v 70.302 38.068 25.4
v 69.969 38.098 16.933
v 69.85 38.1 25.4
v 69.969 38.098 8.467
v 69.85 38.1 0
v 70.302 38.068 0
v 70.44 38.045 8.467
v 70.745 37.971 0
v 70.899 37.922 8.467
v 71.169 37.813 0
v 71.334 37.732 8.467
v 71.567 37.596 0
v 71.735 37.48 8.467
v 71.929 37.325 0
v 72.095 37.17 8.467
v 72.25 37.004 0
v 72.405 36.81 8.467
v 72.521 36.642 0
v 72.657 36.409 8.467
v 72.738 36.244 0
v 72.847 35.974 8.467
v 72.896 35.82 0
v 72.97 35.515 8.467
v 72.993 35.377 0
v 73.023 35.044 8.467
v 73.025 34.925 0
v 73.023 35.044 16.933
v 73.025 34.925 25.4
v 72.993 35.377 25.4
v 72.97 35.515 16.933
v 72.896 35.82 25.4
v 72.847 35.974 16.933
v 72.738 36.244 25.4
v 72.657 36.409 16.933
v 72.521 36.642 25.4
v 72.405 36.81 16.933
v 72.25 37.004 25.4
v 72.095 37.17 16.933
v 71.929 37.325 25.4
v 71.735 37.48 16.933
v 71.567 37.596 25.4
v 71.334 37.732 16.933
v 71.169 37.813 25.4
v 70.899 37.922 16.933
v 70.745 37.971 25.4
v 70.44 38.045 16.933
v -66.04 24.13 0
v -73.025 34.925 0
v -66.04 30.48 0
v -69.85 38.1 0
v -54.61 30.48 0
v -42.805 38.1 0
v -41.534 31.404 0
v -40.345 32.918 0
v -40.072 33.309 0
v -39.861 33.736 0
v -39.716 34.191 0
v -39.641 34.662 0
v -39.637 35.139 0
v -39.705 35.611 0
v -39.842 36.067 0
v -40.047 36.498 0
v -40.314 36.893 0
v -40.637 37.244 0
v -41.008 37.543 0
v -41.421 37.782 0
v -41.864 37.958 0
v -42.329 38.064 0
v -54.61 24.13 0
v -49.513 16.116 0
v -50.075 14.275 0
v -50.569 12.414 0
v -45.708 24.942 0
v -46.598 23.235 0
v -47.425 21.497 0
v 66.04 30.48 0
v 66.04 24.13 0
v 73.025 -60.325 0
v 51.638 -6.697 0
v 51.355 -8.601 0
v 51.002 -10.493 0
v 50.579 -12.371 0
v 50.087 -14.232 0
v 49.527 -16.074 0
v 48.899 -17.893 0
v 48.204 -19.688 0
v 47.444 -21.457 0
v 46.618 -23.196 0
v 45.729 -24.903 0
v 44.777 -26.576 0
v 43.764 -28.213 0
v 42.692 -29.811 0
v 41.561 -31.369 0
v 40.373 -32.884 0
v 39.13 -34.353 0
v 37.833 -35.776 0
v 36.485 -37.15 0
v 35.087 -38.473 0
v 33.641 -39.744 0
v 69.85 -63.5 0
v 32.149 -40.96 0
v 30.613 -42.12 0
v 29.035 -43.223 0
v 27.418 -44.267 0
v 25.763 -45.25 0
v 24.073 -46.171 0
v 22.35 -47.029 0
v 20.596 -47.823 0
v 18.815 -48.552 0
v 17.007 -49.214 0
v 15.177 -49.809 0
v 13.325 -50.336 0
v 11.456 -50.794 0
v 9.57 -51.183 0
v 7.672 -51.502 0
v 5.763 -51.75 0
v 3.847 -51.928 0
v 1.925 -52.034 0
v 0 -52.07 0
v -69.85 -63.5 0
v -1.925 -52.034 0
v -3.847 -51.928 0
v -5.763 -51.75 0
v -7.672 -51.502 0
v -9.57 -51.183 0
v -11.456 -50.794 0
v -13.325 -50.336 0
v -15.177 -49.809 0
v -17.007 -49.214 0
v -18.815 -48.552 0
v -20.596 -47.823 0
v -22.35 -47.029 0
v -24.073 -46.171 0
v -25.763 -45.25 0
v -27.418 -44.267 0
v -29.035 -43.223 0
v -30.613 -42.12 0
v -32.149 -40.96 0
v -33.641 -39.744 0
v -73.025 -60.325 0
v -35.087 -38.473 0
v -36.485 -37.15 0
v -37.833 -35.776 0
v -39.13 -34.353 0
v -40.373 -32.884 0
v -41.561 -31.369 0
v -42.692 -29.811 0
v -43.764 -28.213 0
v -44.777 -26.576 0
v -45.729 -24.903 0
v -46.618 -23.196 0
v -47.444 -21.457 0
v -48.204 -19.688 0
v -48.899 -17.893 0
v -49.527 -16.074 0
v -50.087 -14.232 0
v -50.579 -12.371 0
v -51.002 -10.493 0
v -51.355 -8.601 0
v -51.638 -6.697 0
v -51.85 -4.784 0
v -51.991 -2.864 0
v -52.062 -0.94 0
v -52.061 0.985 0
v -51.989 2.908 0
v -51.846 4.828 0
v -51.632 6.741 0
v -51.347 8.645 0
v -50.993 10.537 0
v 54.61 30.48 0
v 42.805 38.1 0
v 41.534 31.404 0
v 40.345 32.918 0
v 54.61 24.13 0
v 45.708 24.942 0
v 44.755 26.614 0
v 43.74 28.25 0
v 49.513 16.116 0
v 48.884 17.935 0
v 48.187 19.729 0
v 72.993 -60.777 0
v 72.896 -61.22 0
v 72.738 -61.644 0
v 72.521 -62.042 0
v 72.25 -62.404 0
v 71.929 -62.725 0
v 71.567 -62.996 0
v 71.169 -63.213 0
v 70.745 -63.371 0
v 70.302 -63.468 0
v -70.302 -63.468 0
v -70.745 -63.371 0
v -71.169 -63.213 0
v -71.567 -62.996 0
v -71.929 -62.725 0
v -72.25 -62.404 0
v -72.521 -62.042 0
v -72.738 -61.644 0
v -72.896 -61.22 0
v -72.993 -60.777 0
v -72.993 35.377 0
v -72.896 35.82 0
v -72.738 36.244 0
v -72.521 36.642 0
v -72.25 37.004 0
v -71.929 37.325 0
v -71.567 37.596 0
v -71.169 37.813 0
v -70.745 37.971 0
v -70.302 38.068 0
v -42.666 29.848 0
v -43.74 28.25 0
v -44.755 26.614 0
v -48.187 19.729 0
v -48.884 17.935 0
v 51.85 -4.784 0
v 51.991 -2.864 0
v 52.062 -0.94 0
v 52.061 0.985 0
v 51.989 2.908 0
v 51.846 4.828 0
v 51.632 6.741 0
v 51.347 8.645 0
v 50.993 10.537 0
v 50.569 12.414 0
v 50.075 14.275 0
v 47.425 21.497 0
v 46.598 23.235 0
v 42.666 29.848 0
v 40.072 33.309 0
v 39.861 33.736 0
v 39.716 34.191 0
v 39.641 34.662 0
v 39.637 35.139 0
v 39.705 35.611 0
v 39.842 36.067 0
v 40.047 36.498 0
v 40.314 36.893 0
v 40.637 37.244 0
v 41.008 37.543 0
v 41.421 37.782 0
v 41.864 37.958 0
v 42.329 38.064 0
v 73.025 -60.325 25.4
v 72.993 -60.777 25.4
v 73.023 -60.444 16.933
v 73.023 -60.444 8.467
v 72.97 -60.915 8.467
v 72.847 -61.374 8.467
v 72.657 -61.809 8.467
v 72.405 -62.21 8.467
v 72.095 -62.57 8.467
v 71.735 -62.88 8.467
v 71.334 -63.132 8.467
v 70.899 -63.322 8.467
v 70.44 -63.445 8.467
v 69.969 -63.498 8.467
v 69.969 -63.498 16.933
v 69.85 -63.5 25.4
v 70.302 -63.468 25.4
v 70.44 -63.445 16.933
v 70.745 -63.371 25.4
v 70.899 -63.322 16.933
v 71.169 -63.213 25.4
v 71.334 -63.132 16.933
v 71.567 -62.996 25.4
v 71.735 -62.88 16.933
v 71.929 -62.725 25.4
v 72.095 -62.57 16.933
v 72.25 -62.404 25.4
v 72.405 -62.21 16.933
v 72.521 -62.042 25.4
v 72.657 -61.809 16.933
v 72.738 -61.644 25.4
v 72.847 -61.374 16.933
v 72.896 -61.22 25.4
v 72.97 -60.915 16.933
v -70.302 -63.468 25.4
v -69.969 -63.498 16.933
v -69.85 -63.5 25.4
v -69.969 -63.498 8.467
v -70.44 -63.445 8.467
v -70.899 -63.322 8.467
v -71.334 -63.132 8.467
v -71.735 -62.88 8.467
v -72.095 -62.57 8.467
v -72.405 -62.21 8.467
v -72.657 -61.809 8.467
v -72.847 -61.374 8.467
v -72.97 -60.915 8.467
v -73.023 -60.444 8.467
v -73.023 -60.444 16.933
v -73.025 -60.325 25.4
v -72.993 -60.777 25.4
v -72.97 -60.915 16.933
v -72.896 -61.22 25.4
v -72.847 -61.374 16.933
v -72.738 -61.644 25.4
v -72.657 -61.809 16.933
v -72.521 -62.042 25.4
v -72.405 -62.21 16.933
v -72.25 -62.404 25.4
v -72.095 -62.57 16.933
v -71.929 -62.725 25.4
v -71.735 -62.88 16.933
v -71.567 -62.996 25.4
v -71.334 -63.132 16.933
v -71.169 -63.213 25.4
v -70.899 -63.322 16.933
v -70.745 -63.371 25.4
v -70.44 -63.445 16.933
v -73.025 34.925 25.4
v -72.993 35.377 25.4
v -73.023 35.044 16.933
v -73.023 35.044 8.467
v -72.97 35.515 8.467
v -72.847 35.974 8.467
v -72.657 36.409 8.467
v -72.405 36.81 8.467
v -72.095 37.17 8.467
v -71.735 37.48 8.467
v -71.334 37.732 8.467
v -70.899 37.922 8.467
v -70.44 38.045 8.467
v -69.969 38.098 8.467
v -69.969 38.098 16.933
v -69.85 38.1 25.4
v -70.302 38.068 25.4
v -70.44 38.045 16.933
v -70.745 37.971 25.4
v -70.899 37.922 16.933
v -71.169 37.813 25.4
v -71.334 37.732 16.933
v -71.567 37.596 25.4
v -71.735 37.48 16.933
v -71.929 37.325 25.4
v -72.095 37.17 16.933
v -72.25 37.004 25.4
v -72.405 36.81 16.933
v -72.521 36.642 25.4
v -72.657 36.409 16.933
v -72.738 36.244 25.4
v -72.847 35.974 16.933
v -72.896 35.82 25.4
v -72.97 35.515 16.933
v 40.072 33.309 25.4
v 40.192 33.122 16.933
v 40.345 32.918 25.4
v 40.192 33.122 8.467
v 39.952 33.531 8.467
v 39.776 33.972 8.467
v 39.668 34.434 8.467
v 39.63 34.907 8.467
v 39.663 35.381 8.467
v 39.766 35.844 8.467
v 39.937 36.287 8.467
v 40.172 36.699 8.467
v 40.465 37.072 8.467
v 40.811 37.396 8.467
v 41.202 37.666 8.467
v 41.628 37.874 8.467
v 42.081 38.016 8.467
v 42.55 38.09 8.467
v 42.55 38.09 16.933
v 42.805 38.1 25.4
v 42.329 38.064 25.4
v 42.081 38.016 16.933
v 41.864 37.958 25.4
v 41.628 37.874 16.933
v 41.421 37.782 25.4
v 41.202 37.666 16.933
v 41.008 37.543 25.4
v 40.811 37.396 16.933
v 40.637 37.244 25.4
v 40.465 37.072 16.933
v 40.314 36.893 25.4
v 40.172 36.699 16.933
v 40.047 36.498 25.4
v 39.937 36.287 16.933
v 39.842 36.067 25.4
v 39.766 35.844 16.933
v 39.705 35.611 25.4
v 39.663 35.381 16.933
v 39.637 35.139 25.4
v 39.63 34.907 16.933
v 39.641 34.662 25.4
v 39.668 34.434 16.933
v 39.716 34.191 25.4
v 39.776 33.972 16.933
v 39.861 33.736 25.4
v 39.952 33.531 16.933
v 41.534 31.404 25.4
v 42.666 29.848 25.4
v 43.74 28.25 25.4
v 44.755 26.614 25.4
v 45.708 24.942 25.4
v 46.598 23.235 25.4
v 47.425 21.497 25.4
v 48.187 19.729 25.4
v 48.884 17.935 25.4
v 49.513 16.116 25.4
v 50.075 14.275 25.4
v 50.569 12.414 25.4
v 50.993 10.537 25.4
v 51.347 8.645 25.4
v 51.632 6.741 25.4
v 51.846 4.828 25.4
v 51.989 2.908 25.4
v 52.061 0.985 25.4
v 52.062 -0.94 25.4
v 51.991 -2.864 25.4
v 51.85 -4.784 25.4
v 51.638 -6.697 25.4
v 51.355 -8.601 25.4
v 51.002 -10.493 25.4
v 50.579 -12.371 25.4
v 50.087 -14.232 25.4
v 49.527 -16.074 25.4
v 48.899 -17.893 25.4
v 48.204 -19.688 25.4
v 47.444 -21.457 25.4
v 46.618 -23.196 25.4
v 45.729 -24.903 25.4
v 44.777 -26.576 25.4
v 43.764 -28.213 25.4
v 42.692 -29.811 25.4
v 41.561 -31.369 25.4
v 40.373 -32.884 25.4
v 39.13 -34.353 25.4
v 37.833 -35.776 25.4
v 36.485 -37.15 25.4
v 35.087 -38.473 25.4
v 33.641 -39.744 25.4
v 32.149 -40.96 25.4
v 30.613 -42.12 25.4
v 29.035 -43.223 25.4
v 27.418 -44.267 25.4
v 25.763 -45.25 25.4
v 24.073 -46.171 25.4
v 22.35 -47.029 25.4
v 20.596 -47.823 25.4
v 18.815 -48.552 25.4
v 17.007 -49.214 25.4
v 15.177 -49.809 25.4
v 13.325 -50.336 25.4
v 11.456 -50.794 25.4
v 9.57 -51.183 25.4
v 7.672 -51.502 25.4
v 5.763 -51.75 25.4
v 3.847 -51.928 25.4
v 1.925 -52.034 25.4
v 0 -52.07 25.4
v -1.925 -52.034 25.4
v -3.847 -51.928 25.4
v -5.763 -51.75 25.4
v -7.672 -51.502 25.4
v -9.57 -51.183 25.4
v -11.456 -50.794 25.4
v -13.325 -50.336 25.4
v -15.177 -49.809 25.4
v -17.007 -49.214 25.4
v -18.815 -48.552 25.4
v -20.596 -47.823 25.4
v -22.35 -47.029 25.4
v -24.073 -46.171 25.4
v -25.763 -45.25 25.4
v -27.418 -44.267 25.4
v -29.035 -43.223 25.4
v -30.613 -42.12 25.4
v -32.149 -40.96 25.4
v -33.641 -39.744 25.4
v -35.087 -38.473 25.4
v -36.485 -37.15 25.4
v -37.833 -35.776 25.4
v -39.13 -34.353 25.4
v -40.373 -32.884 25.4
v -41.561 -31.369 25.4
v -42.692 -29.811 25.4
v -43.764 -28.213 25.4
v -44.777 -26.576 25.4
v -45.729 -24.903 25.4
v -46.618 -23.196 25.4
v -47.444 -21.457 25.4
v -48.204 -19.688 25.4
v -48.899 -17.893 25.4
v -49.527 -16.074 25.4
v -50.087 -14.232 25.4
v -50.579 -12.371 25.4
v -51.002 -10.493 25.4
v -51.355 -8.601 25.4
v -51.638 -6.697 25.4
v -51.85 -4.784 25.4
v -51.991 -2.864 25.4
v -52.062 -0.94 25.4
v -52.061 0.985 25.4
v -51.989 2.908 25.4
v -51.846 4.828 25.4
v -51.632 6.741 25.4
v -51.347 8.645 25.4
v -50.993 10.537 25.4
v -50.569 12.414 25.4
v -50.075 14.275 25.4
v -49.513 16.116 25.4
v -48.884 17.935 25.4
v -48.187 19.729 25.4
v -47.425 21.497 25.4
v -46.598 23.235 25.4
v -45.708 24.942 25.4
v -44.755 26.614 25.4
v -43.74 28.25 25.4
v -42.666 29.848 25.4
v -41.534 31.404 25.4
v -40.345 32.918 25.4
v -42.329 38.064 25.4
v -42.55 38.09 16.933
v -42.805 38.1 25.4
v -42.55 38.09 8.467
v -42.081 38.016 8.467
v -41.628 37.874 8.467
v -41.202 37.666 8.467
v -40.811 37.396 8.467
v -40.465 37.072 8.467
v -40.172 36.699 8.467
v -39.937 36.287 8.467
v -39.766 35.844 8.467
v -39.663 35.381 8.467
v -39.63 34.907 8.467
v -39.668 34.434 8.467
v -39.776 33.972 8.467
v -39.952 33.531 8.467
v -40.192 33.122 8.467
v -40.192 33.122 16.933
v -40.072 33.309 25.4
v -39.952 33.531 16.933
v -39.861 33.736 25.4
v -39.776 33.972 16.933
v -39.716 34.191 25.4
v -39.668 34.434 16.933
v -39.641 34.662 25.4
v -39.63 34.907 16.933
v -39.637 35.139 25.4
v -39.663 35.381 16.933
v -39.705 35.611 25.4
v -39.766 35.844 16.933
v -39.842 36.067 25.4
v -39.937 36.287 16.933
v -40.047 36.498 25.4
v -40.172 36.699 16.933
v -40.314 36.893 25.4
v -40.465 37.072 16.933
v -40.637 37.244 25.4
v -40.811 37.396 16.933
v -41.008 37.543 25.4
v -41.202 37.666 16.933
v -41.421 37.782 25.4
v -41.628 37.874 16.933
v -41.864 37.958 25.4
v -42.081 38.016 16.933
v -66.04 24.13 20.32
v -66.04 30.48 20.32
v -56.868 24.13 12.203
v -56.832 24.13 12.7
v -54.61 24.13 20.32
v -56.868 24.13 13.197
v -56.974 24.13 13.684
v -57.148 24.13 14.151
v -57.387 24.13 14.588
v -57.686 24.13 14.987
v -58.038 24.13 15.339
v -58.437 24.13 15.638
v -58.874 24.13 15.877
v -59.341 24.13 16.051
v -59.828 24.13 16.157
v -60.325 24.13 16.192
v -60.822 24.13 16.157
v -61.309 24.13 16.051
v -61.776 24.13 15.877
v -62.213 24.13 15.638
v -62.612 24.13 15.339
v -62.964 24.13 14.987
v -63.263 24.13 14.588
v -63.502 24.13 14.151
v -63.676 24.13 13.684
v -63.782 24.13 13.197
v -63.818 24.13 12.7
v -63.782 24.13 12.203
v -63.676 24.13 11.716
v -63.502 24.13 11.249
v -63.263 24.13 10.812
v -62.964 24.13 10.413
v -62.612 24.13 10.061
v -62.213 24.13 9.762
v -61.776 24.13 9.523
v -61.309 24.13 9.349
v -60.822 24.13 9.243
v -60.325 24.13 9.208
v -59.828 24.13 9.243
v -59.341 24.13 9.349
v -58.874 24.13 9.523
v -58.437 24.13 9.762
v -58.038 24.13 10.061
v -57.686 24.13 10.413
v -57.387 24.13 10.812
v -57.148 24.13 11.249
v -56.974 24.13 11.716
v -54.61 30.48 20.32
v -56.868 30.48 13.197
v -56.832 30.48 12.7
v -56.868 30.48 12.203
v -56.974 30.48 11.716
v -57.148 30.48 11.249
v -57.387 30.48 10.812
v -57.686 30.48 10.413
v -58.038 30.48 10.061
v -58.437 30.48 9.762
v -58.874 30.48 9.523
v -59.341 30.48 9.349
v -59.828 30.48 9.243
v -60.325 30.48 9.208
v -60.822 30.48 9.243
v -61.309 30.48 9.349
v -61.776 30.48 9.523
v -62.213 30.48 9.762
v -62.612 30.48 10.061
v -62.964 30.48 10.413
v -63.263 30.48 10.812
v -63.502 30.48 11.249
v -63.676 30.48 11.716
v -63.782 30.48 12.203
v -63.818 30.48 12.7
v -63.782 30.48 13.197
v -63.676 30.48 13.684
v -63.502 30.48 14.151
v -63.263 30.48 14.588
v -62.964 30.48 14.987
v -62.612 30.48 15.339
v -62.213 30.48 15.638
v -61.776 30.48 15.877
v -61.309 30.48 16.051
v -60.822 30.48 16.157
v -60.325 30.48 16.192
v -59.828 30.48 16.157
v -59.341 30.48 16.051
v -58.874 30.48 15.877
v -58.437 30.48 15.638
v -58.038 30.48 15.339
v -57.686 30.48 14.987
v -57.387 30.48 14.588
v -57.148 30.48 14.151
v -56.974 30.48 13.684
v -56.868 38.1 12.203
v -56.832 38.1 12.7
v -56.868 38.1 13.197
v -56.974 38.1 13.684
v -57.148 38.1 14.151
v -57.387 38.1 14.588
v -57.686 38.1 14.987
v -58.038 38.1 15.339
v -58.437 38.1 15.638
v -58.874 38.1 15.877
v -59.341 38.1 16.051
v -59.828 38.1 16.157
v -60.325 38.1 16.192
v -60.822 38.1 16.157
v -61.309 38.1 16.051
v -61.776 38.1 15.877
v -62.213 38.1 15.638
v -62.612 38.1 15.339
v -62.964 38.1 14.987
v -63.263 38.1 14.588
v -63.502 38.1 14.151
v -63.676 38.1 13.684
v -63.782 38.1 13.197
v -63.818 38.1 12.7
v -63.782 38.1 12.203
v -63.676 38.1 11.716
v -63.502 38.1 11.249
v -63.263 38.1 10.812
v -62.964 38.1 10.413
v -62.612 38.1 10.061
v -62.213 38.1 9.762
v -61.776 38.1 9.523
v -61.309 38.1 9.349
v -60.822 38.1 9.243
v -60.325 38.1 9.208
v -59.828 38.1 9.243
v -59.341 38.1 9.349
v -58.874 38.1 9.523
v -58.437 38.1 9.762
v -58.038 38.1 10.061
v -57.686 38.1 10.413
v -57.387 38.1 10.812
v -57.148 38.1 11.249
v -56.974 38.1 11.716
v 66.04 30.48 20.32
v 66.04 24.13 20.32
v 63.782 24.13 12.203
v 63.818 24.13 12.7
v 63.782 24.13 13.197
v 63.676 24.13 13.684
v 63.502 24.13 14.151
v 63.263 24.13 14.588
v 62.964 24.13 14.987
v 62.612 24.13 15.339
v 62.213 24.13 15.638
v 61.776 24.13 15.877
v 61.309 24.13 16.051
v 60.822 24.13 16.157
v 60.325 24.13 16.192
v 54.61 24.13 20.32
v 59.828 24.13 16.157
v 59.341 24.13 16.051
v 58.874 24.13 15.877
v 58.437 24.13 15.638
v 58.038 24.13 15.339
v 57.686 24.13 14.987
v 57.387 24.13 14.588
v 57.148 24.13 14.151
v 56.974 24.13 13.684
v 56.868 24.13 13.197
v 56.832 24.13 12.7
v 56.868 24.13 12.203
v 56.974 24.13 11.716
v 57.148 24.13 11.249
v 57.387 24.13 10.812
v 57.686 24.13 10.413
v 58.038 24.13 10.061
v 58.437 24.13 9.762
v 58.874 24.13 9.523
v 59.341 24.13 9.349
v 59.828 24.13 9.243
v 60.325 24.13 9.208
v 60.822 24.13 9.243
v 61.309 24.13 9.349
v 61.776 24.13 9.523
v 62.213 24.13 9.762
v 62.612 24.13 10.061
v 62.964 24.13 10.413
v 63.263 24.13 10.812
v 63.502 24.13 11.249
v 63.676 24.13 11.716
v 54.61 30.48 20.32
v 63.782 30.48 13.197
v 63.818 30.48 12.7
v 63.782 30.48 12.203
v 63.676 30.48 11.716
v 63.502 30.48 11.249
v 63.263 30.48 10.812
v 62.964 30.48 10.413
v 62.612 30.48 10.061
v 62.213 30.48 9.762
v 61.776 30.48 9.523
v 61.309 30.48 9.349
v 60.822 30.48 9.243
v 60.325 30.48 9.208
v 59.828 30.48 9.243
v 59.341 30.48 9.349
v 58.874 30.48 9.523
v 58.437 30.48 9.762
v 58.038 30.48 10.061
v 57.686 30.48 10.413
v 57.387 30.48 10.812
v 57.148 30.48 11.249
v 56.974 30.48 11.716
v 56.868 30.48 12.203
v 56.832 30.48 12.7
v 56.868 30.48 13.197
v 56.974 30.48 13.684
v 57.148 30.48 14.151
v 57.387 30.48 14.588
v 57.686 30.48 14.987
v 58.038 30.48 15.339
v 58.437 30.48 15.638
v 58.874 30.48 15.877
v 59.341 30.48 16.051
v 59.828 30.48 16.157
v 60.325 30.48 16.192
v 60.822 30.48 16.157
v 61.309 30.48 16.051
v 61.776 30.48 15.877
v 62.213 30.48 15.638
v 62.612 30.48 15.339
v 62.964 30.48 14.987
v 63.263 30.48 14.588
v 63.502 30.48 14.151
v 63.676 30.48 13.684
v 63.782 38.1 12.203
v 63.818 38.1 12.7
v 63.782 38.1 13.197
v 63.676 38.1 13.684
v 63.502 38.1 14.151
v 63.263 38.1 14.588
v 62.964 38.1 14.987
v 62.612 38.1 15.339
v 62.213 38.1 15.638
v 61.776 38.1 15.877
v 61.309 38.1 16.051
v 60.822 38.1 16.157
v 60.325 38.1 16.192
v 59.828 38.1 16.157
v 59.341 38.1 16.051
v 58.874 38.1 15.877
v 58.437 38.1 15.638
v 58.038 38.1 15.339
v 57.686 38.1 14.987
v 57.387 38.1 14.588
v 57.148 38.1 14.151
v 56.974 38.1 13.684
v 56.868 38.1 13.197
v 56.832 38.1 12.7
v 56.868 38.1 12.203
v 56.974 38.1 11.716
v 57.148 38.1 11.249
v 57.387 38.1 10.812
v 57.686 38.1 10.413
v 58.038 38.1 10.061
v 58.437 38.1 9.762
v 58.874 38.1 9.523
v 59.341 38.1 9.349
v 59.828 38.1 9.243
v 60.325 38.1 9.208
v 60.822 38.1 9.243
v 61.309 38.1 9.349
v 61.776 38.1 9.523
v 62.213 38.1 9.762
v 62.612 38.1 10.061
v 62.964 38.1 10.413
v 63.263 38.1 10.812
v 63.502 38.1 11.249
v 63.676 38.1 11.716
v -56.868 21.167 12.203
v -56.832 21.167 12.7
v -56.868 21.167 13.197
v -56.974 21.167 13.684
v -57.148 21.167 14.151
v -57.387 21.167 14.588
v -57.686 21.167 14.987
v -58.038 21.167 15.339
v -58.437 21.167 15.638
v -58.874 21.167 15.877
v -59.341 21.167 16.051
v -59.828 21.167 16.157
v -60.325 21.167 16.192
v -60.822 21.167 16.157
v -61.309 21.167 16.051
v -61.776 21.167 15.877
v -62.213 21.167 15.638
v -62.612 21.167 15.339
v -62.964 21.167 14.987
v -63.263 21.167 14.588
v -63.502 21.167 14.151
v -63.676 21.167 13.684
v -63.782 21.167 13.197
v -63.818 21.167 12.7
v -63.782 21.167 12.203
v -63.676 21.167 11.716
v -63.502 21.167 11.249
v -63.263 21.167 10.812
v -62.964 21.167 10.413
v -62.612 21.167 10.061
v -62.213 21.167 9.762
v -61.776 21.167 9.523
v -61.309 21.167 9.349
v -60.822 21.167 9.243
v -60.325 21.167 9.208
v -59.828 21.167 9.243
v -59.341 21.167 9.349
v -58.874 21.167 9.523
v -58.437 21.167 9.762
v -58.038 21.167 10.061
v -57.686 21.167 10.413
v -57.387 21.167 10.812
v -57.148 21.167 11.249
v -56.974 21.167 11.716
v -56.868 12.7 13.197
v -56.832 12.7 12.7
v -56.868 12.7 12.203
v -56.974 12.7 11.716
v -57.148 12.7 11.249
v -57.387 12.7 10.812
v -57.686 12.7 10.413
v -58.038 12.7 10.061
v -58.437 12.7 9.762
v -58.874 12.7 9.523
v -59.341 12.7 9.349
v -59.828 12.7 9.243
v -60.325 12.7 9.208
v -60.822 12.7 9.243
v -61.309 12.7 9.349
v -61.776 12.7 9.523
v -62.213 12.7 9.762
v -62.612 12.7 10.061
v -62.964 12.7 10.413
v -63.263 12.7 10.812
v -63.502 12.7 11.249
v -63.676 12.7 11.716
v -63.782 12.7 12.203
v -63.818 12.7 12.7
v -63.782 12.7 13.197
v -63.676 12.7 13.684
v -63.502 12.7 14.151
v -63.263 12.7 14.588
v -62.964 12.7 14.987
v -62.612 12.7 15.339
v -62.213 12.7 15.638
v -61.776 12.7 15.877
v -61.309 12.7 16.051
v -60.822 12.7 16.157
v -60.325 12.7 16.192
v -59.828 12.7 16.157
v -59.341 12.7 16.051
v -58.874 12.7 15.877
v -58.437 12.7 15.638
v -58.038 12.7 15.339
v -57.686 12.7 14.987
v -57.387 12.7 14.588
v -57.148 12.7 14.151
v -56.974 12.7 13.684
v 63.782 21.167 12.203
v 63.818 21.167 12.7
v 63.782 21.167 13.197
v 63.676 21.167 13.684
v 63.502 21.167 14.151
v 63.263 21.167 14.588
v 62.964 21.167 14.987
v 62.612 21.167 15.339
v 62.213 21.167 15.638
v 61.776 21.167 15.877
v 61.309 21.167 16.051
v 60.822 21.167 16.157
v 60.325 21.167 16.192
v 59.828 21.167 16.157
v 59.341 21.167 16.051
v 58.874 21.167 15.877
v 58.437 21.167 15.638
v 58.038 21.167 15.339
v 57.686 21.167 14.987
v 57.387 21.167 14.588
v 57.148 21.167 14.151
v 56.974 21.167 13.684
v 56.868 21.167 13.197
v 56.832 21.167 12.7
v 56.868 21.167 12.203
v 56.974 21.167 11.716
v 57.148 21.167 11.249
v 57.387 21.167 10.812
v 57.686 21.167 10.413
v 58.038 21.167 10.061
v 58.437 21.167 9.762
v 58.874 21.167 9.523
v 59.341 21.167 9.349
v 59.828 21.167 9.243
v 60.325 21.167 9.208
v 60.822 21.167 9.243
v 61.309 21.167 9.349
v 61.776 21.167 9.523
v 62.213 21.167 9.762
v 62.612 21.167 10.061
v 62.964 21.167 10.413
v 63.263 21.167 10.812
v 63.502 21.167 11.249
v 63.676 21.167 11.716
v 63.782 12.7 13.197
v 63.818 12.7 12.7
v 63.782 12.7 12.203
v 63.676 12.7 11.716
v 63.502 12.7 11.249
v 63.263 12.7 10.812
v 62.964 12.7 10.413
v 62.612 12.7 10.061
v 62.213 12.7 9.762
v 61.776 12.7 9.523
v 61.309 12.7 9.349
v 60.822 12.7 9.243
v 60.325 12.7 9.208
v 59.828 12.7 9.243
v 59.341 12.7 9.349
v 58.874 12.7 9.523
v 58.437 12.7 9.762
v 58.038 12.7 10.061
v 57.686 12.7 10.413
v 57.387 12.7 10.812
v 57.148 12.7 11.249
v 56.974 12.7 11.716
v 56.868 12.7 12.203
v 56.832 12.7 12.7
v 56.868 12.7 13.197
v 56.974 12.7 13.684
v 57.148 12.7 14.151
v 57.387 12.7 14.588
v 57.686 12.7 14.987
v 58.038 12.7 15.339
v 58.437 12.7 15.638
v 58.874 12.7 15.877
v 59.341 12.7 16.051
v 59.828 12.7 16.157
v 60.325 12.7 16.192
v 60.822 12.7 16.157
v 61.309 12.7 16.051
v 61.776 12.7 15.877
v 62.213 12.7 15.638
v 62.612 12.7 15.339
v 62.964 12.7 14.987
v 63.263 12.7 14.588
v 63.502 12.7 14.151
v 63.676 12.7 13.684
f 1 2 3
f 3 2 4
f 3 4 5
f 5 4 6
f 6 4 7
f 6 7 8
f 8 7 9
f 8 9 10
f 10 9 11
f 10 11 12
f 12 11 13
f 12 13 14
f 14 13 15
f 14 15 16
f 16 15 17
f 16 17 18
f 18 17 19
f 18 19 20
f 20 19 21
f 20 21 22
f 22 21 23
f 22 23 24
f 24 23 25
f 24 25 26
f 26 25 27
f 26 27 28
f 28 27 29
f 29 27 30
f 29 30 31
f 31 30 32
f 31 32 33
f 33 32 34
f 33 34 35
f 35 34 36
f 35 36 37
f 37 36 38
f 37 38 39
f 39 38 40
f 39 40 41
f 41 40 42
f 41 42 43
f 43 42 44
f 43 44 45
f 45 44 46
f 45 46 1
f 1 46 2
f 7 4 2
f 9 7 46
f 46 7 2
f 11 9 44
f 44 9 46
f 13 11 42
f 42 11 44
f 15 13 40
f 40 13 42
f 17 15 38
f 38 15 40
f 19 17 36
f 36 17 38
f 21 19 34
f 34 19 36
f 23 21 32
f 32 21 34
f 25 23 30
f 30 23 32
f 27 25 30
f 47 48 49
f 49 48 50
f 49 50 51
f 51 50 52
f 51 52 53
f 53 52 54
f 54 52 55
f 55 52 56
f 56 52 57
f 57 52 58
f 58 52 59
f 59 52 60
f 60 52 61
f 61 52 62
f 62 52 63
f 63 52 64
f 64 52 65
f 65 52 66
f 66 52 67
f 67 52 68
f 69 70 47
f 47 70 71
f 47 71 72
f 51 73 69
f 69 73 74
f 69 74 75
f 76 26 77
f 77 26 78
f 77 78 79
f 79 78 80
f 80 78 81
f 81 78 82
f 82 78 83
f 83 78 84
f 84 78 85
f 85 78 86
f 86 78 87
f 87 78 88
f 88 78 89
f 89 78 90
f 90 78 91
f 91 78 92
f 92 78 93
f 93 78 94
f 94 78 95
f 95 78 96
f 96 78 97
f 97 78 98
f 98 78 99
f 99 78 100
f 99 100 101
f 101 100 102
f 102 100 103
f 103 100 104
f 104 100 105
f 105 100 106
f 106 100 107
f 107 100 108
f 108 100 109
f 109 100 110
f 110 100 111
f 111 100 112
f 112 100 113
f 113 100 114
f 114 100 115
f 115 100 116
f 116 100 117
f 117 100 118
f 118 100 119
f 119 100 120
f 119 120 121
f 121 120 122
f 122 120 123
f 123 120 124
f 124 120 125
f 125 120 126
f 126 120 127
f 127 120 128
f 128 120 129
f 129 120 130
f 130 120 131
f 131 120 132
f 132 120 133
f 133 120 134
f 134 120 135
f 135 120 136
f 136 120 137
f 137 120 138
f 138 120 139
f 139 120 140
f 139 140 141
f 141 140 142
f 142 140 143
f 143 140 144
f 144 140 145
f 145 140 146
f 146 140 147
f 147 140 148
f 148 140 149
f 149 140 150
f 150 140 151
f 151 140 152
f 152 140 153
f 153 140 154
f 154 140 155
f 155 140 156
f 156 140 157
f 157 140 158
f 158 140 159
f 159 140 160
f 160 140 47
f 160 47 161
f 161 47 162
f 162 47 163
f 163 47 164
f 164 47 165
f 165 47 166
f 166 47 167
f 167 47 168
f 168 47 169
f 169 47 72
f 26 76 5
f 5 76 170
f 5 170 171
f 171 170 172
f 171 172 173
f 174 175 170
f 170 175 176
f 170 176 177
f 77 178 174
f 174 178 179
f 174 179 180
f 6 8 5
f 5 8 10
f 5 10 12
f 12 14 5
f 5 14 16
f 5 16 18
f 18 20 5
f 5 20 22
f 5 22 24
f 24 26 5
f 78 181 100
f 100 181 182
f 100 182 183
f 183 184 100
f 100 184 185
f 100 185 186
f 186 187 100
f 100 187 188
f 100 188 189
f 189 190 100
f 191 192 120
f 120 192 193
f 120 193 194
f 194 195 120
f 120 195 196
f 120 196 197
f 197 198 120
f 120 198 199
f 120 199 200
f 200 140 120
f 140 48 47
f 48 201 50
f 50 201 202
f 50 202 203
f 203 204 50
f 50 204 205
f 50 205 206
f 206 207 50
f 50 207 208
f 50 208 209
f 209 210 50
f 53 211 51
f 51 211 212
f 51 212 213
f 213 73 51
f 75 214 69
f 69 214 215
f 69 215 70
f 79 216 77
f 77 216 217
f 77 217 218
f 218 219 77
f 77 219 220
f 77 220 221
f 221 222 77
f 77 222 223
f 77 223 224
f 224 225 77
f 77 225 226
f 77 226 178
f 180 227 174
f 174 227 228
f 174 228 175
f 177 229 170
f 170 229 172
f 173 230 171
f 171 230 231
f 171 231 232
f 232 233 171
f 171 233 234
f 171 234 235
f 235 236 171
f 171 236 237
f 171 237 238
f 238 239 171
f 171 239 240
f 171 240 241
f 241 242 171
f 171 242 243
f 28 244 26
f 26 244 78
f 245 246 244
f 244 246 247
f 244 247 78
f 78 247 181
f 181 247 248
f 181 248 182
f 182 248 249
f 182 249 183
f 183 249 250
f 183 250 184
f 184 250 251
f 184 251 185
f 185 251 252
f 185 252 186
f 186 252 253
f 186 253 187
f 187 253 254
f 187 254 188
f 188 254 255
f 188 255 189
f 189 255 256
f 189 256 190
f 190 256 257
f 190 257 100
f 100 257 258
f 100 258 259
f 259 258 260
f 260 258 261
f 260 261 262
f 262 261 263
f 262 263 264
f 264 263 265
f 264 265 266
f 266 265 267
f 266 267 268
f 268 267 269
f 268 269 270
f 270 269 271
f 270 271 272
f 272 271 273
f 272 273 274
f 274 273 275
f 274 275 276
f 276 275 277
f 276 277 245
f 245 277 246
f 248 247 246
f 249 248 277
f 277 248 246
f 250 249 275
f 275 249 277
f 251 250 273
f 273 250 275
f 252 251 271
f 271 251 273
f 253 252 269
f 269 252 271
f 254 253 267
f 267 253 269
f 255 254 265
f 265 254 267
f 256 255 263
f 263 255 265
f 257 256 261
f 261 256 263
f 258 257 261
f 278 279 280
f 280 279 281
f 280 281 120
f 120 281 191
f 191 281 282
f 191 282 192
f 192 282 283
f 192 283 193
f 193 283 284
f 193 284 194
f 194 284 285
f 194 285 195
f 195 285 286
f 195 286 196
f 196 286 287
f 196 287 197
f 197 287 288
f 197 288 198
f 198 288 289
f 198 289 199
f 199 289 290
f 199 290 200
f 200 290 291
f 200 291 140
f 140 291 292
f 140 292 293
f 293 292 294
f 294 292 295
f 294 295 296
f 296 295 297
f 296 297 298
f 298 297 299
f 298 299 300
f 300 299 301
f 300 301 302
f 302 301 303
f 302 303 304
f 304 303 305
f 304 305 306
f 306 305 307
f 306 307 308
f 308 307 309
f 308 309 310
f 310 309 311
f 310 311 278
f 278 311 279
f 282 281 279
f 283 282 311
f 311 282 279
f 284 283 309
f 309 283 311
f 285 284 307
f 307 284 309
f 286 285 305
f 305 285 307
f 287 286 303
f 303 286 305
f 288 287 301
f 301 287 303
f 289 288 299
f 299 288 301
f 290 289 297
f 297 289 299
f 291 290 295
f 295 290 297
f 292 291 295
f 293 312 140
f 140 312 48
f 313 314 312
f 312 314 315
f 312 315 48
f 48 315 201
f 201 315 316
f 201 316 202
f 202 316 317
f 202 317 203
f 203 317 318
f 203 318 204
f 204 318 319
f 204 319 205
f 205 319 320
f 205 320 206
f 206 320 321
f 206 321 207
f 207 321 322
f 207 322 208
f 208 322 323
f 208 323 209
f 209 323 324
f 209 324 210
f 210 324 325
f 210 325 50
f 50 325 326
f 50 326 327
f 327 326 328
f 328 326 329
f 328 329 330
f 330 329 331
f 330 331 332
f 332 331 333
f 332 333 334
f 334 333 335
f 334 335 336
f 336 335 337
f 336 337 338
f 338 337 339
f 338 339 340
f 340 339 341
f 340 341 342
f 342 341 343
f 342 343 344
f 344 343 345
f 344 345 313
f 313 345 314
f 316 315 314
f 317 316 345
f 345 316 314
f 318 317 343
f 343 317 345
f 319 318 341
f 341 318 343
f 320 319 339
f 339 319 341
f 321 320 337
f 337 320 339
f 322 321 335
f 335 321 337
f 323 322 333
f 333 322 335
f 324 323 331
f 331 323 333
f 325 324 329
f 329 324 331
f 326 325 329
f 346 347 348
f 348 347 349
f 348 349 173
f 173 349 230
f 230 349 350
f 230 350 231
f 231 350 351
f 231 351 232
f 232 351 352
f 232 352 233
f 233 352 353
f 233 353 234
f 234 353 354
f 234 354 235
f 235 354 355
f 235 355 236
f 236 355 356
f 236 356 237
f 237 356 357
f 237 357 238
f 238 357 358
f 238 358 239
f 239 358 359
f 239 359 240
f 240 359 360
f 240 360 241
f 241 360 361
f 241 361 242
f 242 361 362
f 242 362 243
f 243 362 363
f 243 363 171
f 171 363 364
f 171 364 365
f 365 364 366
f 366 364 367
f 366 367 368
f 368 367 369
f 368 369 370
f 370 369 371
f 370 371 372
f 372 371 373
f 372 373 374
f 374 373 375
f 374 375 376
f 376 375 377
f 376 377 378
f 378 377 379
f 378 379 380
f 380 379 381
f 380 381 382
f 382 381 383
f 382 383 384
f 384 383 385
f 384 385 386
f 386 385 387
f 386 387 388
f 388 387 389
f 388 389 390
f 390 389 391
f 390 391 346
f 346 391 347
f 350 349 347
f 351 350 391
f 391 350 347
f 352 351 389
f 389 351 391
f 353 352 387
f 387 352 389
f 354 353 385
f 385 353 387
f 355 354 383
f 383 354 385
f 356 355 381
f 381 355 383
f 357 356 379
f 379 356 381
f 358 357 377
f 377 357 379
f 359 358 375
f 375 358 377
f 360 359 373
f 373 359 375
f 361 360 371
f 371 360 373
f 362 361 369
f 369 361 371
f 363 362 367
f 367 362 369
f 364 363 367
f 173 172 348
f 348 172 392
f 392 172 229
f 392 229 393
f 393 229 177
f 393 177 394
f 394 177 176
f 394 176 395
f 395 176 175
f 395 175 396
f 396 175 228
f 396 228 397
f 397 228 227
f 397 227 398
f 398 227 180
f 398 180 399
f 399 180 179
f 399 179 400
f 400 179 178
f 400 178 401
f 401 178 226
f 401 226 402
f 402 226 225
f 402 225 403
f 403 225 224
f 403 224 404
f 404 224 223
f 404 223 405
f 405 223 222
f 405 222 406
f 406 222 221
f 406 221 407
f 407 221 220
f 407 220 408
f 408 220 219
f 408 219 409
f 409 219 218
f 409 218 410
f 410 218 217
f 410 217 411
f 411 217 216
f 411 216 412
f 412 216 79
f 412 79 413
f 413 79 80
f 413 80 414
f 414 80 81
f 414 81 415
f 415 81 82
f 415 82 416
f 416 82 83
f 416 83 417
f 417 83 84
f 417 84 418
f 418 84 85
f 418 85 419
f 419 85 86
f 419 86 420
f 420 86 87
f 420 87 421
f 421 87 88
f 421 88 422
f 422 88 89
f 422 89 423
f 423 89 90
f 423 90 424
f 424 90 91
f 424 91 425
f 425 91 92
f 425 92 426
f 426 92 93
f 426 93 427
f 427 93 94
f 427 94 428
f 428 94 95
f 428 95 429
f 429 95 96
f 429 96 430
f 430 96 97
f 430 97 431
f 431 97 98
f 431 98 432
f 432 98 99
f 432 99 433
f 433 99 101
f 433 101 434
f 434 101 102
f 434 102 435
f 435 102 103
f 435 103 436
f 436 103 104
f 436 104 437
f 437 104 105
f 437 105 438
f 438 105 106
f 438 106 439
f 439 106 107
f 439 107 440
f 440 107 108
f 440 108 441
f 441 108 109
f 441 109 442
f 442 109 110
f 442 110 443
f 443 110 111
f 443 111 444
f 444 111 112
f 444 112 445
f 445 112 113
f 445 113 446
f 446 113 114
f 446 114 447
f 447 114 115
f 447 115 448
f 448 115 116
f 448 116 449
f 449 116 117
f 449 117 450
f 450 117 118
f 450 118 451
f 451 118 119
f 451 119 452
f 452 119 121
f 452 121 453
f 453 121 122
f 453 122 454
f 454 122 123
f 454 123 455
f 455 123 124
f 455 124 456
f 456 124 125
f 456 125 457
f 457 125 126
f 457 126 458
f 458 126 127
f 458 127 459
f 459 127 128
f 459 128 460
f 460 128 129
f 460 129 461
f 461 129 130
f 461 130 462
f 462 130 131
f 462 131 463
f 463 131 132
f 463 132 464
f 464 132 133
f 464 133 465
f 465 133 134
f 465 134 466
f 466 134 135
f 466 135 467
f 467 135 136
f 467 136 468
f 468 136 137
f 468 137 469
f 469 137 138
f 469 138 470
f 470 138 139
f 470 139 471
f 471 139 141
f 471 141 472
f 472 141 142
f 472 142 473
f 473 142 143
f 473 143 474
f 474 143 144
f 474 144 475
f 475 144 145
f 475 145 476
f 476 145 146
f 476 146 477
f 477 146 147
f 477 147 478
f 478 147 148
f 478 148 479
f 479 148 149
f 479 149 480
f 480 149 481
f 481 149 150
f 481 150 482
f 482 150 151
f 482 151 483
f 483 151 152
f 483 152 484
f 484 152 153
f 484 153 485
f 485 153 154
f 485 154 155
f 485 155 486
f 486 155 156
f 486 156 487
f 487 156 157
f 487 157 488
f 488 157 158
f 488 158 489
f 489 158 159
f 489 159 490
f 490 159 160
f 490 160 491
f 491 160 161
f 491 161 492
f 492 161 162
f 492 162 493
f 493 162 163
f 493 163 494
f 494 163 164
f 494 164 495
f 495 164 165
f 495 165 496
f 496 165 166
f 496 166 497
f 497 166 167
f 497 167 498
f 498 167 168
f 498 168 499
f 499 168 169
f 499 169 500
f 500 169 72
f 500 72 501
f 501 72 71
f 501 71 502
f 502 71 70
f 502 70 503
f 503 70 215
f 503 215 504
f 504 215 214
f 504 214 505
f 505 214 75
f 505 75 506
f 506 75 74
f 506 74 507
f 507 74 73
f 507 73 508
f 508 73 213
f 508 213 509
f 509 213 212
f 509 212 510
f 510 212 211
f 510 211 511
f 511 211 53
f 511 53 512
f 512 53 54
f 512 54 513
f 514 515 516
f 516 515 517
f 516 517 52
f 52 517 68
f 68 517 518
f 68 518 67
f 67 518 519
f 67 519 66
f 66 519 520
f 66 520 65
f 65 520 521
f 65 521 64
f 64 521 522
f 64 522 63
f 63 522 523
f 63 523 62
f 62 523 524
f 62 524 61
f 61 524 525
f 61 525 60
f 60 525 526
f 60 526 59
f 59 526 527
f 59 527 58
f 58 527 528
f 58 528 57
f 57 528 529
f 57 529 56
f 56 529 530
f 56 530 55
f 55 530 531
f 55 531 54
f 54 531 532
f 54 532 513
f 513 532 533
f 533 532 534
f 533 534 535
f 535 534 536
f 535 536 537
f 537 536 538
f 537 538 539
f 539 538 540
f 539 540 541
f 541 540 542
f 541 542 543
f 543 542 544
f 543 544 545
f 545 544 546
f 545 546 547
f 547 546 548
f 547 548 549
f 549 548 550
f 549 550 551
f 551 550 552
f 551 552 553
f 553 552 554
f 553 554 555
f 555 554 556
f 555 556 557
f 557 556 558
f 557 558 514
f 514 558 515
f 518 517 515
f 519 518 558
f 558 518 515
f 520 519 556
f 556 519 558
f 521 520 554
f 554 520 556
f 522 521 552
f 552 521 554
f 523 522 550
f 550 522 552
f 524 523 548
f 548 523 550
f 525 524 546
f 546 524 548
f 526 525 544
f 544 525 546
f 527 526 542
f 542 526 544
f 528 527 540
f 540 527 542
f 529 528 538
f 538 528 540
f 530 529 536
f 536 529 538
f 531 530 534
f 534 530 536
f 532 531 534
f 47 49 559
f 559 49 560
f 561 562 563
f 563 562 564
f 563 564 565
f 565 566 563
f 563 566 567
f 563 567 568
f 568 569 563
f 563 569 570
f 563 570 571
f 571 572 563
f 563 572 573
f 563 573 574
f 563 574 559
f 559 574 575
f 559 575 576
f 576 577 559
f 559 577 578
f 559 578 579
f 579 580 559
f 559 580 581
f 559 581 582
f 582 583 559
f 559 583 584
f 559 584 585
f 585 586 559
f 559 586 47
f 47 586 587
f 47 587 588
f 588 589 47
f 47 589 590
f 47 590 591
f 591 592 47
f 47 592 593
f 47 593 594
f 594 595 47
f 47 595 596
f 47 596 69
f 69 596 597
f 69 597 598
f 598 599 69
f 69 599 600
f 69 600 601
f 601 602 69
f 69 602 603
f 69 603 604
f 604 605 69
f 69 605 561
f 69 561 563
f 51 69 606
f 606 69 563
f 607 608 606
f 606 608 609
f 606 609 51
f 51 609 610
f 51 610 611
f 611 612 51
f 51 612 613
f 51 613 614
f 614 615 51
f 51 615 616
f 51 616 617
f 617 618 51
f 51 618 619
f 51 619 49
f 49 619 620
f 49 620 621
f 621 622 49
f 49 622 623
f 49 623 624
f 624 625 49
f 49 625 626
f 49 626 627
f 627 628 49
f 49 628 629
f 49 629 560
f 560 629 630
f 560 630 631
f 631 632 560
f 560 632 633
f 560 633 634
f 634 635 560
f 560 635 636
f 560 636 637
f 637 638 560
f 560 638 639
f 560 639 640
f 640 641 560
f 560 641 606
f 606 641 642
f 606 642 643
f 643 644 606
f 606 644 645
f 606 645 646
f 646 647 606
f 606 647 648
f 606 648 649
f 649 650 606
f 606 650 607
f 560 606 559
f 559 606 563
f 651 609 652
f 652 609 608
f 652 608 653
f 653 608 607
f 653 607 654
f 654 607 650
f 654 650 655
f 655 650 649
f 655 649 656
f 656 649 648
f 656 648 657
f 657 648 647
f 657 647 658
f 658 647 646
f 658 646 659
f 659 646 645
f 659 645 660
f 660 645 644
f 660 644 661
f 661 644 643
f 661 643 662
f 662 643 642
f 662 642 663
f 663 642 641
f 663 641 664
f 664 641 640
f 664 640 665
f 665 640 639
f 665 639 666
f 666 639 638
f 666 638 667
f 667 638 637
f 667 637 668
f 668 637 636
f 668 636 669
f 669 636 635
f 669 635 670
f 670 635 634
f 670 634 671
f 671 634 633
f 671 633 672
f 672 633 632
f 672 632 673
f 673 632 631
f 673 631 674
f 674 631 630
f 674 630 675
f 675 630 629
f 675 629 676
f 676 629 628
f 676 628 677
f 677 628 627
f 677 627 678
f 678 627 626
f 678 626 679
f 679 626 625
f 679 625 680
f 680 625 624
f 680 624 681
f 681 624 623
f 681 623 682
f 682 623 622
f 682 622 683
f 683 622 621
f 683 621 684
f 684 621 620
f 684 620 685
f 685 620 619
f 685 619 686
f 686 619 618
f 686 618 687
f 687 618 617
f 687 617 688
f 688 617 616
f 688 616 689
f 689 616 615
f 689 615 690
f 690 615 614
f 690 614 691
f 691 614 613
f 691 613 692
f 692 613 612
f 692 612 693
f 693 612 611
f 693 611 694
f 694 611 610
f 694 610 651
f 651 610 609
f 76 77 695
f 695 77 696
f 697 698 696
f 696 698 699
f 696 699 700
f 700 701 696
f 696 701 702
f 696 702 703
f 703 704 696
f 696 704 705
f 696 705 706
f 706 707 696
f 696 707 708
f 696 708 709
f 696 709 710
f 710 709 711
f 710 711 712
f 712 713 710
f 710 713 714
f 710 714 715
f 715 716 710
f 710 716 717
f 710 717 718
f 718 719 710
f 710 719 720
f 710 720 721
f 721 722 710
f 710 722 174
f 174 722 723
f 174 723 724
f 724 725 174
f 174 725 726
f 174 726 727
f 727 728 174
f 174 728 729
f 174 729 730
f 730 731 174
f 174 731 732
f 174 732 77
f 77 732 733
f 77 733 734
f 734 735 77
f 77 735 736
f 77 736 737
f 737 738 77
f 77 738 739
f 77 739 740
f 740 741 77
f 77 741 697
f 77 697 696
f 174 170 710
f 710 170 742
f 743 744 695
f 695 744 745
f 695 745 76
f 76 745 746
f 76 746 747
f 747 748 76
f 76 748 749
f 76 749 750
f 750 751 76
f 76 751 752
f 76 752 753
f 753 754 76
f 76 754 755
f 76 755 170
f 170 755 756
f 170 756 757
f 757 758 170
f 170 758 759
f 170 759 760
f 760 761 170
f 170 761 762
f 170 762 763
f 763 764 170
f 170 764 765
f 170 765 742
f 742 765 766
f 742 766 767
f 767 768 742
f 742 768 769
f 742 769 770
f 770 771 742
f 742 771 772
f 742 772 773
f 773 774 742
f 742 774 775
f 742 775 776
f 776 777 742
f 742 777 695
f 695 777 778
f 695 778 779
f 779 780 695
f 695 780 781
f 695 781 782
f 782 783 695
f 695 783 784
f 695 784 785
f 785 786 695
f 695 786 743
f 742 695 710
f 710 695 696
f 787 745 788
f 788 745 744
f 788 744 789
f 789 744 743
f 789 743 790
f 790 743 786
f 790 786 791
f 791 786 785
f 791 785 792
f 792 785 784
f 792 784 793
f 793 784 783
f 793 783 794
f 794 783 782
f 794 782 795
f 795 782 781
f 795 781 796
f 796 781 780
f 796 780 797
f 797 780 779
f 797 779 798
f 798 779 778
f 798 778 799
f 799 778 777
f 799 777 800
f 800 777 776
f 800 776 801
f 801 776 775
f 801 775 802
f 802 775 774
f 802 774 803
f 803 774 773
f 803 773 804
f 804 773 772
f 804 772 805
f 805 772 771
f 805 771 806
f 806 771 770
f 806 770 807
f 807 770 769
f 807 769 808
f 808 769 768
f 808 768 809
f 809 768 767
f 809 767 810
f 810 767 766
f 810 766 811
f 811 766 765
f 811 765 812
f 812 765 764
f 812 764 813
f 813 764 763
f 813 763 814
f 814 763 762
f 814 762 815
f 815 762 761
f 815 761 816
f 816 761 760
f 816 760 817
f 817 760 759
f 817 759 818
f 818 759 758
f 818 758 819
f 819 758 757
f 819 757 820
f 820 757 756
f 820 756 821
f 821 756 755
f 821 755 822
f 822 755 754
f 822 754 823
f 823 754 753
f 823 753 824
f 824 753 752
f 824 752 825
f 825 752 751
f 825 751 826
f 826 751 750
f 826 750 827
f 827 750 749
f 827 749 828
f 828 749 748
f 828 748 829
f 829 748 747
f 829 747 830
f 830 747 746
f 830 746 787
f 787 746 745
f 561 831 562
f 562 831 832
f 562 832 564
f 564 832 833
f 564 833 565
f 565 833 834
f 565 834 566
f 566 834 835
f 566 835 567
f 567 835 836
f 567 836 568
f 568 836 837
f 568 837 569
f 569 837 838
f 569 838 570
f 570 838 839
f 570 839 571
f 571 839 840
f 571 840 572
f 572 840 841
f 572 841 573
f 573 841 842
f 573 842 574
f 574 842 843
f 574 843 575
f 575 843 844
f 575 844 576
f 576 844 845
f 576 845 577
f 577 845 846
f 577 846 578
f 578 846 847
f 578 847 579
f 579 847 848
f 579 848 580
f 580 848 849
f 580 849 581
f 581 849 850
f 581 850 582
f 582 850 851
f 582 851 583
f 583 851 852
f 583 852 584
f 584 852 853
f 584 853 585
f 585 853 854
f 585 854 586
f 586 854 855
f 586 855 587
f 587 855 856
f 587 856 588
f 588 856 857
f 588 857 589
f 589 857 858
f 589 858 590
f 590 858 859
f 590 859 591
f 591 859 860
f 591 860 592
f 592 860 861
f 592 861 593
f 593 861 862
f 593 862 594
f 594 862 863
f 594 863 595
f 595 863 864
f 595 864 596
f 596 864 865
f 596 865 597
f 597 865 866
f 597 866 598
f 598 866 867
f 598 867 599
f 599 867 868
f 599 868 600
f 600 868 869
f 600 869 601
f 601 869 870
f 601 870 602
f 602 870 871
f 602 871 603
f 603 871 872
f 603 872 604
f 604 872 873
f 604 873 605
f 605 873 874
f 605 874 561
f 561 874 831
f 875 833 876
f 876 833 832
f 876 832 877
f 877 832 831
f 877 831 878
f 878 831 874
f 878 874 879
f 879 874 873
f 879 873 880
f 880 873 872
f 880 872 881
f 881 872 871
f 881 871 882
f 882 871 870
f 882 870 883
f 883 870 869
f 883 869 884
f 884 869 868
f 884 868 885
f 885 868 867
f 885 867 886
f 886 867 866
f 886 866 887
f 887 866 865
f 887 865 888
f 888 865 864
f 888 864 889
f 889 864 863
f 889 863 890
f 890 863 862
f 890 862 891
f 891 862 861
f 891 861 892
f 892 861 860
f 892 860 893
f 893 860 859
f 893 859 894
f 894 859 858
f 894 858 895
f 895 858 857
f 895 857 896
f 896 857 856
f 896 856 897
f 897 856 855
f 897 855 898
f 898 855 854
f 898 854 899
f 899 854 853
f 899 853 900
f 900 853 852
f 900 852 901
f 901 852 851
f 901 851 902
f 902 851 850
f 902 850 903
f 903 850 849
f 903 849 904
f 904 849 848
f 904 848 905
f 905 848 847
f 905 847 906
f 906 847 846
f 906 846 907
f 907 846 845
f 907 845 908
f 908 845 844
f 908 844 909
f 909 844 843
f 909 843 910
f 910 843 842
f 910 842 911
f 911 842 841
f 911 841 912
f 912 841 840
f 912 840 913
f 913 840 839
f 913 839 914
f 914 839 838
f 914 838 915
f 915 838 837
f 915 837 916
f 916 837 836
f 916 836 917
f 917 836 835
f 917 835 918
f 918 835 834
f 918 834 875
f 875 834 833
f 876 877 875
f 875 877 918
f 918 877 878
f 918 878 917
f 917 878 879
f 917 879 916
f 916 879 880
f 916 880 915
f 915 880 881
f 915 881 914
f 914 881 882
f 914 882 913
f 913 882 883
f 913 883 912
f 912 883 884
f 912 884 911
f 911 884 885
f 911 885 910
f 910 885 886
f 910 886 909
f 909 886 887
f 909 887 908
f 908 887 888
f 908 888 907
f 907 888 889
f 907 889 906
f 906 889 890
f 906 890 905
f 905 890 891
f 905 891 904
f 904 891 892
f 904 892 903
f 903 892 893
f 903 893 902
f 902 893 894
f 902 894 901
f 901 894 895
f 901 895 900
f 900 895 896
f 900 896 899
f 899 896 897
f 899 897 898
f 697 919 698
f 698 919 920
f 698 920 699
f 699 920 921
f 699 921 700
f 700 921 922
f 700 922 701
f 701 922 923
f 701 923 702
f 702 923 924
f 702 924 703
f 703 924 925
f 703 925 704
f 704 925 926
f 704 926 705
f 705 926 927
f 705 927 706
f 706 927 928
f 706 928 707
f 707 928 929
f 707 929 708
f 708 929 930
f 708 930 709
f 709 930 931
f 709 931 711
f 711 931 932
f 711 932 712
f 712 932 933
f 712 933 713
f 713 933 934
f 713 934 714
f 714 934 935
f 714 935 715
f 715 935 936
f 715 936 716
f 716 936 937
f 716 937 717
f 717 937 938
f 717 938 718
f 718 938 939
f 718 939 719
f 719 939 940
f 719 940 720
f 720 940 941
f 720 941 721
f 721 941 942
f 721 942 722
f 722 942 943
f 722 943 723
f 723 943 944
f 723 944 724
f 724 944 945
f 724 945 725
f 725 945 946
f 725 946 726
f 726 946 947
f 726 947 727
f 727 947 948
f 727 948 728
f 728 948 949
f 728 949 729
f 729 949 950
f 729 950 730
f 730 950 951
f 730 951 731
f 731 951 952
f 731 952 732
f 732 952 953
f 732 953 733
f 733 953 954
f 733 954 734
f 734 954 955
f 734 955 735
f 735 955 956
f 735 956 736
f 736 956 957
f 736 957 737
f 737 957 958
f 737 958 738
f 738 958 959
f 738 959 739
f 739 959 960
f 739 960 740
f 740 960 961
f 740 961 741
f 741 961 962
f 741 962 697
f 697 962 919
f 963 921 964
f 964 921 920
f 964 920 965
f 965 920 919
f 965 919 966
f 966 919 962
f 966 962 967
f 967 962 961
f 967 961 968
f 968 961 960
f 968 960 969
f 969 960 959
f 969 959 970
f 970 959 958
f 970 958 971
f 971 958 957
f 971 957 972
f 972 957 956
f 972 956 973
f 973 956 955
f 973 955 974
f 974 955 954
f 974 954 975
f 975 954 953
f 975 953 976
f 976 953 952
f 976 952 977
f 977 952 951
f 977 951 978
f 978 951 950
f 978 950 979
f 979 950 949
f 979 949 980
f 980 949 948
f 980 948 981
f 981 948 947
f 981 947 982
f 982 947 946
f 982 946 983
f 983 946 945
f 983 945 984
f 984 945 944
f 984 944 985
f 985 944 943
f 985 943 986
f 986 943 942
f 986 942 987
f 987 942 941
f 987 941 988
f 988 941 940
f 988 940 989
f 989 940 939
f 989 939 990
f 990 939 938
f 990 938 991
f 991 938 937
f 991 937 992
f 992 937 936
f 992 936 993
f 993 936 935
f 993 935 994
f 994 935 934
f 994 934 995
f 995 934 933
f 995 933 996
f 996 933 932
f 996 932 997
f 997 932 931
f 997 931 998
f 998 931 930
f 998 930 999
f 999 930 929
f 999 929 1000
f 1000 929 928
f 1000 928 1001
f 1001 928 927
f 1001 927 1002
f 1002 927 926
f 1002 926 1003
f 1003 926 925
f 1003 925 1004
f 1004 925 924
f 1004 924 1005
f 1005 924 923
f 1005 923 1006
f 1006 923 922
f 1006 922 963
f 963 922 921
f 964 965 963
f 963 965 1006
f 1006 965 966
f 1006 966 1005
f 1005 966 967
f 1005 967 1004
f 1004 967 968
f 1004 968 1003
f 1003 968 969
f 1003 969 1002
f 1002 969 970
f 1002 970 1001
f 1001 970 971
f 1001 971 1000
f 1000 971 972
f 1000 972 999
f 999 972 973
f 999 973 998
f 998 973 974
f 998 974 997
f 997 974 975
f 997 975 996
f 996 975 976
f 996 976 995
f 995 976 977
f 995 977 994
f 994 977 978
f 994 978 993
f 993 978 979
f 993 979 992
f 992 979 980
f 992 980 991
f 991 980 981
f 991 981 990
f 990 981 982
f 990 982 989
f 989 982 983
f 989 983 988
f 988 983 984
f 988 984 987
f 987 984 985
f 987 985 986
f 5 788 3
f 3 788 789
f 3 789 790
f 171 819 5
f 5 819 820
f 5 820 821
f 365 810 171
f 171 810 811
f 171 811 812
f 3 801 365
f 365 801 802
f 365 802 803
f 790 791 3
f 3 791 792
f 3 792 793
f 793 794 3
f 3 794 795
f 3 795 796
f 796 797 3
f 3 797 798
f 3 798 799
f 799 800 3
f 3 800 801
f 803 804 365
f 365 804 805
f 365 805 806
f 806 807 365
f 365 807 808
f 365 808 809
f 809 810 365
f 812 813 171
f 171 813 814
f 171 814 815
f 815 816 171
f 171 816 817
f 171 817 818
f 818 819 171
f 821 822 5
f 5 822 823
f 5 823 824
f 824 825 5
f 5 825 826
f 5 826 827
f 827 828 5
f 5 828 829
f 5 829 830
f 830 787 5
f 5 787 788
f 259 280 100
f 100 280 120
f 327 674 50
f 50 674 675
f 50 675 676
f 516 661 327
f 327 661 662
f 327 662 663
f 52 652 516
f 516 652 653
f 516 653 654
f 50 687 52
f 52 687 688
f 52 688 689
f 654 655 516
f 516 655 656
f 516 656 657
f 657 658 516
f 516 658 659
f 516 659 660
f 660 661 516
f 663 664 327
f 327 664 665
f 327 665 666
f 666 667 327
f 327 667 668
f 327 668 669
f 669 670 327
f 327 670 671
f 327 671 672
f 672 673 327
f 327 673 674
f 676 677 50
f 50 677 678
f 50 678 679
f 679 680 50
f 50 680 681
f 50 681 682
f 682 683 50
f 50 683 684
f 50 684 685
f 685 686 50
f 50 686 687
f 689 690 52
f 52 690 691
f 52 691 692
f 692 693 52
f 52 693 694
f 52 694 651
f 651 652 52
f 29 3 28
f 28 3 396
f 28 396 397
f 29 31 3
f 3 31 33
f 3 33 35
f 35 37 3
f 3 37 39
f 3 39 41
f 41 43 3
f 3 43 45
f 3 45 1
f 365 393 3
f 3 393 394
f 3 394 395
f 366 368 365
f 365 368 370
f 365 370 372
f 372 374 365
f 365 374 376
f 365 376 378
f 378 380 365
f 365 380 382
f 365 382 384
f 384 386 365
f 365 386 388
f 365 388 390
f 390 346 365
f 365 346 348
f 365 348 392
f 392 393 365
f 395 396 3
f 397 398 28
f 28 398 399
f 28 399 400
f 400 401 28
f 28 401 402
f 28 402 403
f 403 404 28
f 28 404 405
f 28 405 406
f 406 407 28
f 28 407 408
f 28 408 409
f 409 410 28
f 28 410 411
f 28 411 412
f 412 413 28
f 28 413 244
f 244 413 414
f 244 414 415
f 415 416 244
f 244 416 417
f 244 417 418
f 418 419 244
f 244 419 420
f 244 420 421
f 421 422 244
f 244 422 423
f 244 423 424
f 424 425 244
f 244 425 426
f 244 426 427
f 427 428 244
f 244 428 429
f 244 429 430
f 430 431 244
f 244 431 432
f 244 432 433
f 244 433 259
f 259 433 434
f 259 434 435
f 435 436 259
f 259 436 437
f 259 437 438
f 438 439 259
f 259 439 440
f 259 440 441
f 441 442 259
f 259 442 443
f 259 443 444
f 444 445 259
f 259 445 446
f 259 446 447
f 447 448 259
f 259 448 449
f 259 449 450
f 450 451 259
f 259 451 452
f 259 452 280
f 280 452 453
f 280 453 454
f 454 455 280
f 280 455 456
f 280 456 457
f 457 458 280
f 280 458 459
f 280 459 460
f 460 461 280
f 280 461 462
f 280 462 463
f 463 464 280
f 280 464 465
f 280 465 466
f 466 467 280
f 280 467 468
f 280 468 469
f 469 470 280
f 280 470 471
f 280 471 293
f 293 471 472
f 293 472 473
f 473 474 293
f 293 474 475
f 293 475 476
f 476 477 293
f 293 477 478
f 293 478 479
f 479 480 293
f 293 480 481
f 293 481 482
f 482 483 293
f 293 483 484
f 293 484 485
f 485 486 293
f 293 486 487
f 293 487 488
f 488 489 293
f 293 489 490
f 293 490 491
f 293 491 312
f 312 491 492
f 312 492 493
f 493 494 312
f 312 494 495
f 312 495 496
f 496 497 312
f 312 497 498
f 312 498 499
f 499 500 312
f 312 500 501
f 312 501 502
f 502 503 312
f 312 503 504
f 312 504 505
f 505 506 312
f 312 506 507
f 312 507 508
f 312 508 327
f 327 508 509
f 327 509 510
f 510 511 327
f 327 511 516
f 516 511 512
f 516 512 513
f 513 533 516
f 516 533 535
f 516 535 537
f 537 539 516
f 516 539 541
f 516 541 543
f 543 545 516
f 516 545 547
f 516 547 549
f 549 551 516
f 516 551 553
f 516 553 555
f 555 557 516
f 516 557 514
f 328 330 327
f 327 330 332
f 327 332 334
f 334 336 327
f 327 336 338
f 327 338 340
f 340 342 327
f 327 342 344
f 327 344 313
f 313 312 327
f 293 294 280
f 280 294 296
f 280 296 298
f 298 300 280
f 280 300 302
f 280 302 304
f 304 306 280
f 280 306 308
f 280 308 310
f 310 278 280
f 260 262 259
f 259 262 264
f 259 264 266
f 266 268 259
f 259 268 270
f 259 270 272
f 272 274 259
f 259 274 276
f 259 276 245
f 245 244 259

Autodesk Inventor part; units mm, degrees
ref_plane "YZ Plane" through (0, 0, 0) normal (1, 0, 0) x (0, 1, 0)
ref_plane "XZ Plane" through (0, 0, 0) normal (0, 1, 0) x (-1, 0, 0)
ref_plane "XY Plane" through (0, 0, 0) normal (0, 0, 1) x (1, 0, 0)
sketch "Sketch1" plane through (0, 0, 0) normal (0, 0, 1) x (1, 0, 0)
  arc A0 (-35.4919, 38.1) -> (35.4919, 38.1) centre (0, 0) ccw
  line L0 (-35.4919, 38.1) -> (-73.025, 38.1)
  line L1 (-73.025, 38.1) -> (-73.025, -63.5)
  line L2 (-73.025, -63.5) -> (73.025, -63.5)
  line L3 (73.025, -63.5) -> (73.025, 38.1)
  line L4 (73.025, 38.1) -> (35.4919, 38.1)
  dimension "d0" = 104.14
  dimension "d1" = 146.05
  dimension "d2" = 101.6
  dimension "d3" = 63.5
extrude "Extrusion1" add sketch "Sketch1" along normal blind 25.4
sketch "Sketch3" plane through (-73.025, 38.1, 0) normal (0, 1, 0) x (1, 0, 0)
  line L0 (0, 0) -> (37.5331, 0) construction
  line L1 (0, 0) -> (0, -25.4) construction
  line L2 (37.5331, -25.4) -> (0, -25.4) construction
  line L3 (37.5331, 0) -> (37.5331, -25.4) construction
  line L4 (108.5169, 0) -> (146.05, 0) construction
  line L5 (108.5169, 0) -> (108.5169, -25.4) construction
  line L6 (146.05, -25.4) -> (108.5169, -25.4) construction
  line L7 (146.05, 0) -> (146.05, -25.4) construction
  circle A0 centre (12.7, -12.7) radius 3.4925
  circle A1 centre (133.35, -12.7) radius 3.4925
  point P0 (73.025, 0)
  point P1 (0, -12.7)
  dimension "d6" = 6.985
  dimension "d7" = 6.985
  dimension "d8" = 12.7
  dimension "d9" = 12.7
extrude "Extrusion2" cut sketch "Sketch3" against normal blind 25.4
sketch "Sketch4" plane through (0, 0, 0) normal (0, 0, -1) x (-1, 0, 0)
  arc A0 (-35.4919, 38.1) -> (35.4919, 38.1) centre (0, 0) ccw construction
  line L0 (-35.4919, 38.1) -> (-73.025, 38.1) construction
  line L1 (-73.025, 38.1) -> (-73.025, -63.5) construction
  line L2 (-73.025, -63.5) -> (73.025, -63.5) construction
  line L3 (73.025, -63.5) -> (73.025, 38.1) construction
  line L4 (73.025, 38.1) -> (35.4919, 38.1) construction
  line L5 (-66.04, 30.48) -> (-54.61, 30.48)
  line L6 (-54.61, 30.48) -> (-54.61, 24.13)
  line L7 (-54.61, 24.13) -> (-66.04, 24.13)
  line L8 (-66.04, 24.13) -> (-66.04, 30.48)
  line L9 (-60.325, 30.48) -> (-60.325, 24.13) construction
  dimension "d12" = 11.43
  dimension "d13" = 12.7
  dimension "d14" = 7.62
  dimension "d15" = 6.35
extrude "Extrusion3" cut sketch "Sketch4" against normal blind 20.32
mirror "Mirror1" about plane through (0, 0, 0) normal (1, 0, 0) of "Extrusion3"
fillet "Fillet1" radius 3.175 6 edges at (-35.4919, 38.1, 12.7) (35.4919, 38.1, 12.7) (-73.025, 38.1, 12.7) (-73.025, -63.5, 12.7) (73.025, -63.5, 12.7) (73.025, 38.1, 12.7)
properties part number "Bottom" material "ABS Plastic"
